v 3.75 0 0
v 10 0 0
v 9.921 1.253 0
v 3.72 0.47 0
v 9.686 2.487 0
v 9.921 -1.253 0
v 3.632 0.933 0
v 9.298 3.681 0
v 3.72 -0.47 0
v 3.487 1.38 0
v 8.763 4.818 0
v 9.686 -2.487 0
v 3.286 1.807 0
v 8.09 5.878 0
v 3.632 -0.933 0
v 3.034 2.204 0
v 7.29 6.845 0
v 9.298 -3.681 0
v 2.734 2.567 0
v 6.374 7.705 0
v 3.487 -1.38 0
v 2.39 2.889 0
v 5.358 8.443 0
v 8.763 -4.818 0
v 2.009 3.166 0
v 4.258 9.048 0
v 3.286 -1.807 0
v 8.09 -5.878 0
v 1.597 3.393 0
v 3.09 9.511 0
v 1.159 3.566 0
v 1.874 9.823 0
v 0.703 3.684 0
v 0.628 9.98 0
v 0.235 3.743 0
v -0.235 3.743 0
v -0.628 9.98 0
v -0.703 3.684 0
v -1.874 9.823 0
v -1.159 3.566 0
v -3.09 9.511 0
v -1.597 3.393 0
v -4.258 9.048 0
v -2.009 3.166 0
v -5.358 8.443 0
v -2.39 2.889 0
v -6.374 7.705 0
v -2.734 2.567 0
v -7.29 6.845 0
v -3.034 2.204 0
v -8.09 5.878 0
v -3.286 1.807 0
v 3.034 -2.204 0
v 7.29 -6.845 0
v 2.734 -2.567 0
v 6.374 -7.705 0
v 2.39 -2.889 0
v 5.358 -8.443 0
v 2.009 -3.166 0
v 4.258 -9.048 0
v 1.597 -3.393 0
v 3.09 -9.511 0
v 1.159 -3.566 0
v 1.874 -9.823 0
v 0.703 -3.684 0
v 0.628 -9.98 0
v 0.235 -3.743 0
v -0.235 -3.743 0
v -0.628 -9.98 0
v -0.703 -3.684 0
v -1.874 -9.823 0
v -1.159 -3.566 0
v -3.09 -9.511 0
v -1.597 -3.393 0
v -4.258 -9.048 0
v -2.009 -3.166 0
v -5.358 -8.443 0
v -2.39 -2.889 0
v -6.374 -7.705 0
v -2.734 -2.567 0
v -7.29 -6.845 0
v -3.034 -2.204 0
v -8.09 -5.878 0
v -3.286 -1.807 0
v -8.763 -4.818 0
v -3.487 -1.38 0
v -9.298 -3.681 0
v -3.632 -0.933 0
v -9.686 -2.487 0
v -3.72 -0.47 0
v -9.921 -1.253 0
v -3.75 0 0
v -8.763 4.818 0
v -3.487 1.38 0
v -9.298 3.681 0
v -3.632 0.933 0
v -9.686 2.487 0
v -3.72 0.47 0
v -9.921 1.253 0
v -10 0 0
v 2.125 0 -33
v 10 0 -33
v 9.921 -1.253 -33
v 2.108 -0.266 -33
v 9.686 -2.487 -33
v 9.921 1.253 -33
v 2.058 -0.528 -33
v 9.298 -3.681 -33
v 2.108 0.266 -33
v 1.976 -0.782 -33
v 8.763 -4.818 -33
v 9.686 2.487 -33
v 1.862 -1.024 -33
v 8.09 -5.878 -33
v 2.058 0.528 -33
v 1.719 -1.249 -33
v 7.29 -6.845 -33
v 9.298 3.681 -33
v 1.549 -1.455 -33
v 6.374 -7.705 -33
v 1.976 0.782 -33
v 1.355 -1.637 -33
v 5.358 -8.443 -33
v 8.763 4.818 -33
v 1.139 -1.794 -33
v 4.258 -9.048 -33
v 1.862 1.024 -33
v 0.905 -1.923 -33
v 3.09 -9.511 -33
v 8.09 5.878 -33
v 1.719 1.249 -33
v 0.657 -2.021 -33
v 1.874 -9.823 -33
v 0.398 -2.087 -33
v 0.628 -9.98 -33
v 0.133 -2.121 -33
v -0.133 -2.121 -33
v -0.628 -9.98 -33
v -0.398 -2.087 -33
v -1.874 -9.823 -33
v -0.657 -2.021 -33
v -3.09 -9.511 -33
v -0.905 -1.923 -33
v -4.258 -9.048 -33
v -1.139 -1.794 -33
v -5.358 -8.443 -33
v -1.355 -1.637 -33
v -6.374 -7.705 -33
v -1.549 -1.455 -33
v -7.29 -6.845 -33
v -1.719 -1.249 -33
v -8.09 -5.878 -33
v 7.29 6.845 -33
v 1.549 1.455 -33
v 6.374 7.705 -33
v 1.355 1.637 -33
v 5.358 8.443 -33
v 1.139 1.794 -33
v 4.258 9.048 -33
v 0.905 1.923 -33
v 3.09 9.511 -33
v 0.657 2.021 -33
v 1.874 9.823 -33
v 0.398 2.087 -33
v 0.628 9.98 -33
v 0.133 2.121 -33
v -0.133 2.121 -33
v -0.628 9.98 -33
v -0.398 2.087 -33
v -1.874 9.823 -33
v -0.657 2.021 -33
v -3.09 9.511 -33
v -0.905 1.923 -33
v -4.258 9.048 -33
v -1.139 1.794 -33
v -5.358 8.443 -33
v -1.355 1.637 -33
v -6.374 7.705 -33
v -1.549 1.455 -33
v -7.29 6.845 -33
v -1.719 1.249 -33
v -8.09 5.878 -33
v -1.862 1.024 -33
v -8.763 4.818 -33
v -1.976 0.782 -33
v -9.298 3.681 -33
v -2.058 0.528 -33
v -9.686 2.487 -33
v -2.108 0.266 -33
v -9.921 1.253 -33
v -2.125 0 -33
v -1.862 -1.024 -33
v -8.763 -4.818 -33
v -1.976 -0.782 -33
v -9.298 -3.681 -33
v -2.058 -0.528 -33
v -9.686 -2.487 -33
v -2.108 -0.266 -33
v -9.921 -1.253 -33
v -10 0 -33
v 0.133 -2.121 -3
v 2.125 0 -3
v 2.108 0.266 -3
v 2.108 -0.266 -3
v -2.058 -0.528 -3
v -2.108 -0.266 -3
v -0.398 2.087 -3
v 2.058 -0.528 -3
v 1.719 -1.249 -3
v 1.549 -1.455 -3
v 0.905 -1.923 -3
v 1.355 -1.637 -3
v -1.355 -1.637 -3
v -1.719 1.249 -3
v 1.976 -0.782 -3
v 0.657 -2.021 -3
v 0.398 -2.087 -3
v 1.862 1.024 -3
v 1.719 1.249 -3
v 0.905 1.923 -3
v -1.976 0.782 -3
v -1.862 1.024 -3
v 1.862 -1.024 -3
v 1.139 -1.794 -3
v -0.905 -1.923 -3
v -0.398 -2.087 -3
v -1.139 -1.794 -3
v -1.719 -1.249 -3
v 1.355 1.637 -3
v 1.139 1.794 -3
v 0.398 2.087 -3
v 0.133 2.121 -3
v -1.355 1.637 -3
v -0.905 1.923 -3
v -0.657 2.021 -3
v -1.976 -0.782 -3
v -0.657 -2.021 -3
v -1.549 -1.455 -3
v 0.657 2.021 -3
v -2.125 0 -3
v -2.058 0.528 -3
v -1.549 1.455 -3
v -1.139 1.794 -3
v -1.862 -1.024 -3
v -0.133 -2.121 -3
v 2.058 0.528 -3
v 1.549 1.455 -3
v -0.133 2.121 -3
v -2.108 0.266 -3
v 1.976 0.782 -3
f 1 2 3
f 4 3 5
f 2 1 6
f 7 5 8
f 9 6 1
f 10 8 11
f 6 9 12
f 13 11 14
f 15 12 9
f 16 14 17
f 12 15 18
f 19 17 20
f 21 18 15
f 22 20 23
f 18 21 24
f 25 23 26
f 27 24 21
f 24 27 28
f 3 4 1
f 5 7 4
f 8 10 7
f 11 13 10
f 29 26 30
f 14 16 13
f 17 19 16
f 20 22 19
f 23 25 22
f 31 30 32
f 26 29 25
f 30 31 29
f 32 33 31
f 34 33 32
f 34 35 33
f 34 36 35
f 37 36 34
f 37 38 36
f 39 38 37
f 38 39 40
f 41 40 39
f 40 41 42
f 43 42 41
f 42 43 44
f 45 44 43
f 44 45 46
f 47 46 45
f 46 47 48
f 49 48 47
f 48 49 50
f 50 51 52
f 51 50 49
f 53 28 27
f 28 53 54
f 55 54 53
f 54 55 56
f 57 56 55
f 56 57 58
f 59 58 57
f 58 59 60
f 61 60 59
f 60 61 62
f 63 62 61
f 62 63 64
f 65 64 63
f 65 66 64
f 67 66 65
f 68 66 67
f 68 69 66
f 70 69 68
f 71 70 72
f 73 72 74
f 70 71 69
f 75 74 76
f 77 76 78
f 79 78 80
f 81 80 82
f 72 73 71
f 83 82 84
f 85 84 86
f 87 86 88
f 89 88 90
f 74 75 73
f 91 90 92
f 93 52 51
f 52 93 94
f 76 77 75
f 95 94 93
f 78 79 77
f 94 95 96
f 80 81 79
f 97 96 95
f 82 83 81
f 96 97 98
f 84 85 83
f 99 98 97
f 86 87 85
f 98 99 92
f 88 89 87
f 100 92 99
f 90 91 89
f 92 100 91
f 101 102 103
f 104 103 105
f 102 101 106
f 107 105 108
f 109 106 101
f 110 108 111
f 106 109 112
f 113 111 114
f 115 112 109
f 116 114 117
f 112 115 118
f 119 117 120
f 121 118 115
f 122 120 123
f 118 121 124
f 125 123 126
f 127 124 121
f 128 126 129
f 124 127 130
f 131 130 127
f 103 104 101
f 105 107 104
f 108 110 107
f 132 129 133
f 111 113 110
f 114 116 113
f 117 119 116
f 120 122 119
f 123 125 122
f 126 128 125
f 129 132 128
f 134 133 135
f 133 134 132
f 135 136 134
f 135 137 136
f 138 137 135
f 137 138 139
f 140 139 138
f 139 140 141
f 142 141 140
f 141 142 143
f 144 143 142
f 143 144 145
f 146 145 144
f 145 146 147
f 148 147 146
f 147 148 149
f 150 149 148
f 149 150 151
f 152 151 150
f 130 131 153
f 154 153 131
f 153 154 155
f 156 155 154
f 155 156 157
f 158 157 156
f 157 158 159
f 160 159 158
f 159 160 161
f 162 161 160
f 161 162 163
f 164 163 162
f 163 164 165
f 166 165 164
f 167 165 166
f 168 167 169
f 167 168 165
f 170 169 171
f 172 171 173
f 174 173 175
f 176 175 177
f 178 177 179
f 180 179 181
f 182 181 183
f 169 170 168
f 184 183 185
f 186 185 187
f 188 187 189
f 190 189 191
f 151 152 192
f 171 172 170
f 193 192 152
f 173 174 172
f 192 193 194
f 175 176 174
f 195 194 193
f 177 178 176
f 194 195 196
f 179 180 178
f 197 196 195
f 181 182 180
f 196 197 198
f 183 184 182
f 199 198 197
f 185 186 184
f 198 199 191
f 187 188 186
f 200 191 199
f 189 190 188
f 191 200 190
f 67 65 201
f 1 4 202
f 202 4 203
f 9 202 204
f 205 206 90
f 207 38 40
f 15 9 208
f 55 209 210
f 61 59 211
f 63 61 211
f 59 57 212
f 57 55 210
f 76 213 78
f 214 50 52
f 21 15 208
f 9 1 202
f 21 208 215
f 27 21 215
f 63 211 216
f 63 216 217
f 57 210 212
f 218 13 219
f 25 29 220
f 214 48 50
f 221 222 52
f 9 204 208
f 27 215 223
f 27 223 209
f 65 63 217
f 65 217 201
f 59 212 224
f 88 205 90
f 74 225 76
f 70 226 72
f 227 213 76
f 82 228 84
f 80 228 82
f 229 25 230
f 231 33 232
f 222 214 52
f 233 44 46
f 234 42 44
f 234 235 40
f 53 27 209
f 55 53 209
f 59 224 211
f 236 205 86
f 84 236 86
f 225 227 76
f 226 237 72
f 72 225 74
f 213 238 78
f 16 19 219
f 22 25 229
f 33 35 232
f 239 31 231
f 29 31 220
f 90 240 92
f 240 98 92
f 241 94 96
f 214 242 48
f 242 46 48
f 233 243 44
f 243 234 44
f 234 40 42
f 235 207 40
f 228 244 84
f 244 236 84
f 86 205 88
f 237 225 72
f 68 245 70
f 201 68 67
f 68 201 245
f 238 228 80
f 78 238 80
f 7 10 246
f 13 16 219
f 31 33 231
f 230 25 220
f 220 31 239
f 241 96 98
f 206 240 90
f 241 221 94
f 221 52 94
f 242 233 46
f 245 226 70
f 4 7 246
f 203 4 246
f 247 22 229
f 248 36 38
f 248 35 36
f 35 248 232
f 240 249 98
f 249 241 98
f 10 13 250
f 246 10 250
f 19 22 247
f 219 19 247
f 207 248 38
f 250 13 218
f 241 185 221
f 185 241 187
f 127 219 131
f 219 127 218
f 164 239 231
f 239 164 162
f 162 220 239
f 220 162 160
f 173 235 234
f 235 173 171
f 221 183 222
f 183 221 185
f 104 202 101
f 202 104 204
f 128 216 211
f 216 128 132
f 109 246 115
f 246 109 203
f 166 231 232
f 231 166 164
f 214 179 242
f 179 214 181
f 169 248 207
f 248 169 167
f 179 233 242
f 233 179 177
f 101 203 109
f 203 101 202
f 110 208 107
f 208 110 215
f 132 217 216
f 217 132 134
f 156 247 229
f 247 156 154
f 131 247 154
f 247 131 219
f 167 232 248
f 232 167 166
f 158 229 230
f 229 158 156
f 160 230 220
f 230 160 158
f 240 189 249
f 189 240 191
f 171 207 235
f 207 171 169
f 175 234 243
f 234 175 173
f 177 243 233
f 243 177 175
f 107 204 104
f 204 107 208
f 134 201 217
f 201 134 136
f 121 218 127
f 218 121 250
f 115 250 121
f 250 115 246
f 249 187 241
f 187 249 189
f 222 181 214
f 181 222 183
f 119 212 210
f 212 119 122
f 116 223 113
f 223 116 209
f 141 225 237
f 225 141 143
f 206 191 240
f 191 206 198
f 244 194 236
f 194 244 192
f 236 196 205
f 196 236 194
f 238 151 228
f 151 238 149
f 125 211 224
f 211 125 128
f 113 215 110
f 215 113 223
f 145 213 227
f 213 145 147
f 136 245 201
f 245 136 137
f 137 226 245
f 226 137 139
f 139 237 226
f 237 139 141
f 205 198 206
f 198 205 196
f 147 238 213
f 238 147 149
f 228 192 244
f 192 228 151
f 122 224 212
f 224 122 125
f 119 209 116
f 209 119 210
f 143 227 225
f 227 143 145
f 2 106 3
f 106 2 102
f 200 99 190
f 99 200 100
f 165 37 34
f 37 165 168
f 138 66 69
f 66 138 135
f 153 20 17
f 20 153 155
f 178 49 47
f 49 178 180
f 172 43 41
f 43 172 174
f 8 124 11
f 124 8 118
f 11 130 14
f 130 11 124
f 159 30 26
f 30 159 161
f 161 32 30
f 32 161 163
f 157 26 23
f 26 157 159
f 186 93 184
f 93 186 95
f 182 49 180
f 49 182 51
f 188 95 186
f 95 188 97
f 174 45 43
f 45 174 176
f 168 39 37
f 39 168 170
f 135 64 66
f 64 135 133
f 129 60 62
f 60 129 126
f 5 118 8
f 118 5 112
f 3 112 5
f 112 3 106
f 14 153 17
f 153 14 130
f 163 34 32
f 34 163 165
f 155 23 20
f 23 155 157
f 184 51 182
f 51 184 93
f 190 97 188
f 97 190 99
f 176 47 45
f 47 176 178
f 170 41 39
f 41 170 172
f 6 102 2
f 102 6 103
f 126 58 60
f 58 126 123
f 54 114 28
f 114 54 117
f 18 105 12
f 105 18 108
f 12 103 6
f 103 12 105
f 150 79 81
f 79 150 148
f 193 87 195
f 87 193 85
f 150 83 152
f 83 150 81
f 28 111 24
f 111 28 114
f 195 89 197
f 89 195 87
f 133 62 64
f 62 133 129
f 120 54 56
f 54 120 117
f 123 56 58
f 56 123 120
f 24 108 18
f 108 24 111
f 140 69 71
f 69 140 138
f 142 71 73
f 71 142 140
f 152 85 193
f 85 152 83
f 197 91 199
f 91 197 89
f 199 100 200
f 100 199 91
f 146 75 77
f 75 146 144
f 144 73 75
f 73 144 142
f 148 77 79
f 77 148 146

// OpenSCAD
$fn = 50;


difference() {
	union() {
		translate(v = [0, 0, -33.0000000000]) {
			cylinder(h = 33, r = 10.0000000000);
		}
		cylinder(h = 0, r = 13.0000000000);
	}
	union() {
		translate(v = [0, 0, 0]) {
			rotate(a = [0, 0, 0]) {
				difference() {
					union() {
						#translate(v = [0, 0, -33.0000000000]) {
							cylinder(h = 33, r = 2.0000000000);
						}
						#translate(v = [0, 0, -3]) {
							cylinder(h = 3, r1 = 2.1250000000, r2 = 3.7500000000);
						}
						#translate(v = [0, 0, -33.0000000000]) {
							cylinder(h = 33, r = 2.1250000000);
						}
						#translate(v = [0, 0, -33.0000000000]) {
							cylinder(h = 33, r = 2.0000000000);
						}
					}
					union();
				}
			}
		}
	}
}
